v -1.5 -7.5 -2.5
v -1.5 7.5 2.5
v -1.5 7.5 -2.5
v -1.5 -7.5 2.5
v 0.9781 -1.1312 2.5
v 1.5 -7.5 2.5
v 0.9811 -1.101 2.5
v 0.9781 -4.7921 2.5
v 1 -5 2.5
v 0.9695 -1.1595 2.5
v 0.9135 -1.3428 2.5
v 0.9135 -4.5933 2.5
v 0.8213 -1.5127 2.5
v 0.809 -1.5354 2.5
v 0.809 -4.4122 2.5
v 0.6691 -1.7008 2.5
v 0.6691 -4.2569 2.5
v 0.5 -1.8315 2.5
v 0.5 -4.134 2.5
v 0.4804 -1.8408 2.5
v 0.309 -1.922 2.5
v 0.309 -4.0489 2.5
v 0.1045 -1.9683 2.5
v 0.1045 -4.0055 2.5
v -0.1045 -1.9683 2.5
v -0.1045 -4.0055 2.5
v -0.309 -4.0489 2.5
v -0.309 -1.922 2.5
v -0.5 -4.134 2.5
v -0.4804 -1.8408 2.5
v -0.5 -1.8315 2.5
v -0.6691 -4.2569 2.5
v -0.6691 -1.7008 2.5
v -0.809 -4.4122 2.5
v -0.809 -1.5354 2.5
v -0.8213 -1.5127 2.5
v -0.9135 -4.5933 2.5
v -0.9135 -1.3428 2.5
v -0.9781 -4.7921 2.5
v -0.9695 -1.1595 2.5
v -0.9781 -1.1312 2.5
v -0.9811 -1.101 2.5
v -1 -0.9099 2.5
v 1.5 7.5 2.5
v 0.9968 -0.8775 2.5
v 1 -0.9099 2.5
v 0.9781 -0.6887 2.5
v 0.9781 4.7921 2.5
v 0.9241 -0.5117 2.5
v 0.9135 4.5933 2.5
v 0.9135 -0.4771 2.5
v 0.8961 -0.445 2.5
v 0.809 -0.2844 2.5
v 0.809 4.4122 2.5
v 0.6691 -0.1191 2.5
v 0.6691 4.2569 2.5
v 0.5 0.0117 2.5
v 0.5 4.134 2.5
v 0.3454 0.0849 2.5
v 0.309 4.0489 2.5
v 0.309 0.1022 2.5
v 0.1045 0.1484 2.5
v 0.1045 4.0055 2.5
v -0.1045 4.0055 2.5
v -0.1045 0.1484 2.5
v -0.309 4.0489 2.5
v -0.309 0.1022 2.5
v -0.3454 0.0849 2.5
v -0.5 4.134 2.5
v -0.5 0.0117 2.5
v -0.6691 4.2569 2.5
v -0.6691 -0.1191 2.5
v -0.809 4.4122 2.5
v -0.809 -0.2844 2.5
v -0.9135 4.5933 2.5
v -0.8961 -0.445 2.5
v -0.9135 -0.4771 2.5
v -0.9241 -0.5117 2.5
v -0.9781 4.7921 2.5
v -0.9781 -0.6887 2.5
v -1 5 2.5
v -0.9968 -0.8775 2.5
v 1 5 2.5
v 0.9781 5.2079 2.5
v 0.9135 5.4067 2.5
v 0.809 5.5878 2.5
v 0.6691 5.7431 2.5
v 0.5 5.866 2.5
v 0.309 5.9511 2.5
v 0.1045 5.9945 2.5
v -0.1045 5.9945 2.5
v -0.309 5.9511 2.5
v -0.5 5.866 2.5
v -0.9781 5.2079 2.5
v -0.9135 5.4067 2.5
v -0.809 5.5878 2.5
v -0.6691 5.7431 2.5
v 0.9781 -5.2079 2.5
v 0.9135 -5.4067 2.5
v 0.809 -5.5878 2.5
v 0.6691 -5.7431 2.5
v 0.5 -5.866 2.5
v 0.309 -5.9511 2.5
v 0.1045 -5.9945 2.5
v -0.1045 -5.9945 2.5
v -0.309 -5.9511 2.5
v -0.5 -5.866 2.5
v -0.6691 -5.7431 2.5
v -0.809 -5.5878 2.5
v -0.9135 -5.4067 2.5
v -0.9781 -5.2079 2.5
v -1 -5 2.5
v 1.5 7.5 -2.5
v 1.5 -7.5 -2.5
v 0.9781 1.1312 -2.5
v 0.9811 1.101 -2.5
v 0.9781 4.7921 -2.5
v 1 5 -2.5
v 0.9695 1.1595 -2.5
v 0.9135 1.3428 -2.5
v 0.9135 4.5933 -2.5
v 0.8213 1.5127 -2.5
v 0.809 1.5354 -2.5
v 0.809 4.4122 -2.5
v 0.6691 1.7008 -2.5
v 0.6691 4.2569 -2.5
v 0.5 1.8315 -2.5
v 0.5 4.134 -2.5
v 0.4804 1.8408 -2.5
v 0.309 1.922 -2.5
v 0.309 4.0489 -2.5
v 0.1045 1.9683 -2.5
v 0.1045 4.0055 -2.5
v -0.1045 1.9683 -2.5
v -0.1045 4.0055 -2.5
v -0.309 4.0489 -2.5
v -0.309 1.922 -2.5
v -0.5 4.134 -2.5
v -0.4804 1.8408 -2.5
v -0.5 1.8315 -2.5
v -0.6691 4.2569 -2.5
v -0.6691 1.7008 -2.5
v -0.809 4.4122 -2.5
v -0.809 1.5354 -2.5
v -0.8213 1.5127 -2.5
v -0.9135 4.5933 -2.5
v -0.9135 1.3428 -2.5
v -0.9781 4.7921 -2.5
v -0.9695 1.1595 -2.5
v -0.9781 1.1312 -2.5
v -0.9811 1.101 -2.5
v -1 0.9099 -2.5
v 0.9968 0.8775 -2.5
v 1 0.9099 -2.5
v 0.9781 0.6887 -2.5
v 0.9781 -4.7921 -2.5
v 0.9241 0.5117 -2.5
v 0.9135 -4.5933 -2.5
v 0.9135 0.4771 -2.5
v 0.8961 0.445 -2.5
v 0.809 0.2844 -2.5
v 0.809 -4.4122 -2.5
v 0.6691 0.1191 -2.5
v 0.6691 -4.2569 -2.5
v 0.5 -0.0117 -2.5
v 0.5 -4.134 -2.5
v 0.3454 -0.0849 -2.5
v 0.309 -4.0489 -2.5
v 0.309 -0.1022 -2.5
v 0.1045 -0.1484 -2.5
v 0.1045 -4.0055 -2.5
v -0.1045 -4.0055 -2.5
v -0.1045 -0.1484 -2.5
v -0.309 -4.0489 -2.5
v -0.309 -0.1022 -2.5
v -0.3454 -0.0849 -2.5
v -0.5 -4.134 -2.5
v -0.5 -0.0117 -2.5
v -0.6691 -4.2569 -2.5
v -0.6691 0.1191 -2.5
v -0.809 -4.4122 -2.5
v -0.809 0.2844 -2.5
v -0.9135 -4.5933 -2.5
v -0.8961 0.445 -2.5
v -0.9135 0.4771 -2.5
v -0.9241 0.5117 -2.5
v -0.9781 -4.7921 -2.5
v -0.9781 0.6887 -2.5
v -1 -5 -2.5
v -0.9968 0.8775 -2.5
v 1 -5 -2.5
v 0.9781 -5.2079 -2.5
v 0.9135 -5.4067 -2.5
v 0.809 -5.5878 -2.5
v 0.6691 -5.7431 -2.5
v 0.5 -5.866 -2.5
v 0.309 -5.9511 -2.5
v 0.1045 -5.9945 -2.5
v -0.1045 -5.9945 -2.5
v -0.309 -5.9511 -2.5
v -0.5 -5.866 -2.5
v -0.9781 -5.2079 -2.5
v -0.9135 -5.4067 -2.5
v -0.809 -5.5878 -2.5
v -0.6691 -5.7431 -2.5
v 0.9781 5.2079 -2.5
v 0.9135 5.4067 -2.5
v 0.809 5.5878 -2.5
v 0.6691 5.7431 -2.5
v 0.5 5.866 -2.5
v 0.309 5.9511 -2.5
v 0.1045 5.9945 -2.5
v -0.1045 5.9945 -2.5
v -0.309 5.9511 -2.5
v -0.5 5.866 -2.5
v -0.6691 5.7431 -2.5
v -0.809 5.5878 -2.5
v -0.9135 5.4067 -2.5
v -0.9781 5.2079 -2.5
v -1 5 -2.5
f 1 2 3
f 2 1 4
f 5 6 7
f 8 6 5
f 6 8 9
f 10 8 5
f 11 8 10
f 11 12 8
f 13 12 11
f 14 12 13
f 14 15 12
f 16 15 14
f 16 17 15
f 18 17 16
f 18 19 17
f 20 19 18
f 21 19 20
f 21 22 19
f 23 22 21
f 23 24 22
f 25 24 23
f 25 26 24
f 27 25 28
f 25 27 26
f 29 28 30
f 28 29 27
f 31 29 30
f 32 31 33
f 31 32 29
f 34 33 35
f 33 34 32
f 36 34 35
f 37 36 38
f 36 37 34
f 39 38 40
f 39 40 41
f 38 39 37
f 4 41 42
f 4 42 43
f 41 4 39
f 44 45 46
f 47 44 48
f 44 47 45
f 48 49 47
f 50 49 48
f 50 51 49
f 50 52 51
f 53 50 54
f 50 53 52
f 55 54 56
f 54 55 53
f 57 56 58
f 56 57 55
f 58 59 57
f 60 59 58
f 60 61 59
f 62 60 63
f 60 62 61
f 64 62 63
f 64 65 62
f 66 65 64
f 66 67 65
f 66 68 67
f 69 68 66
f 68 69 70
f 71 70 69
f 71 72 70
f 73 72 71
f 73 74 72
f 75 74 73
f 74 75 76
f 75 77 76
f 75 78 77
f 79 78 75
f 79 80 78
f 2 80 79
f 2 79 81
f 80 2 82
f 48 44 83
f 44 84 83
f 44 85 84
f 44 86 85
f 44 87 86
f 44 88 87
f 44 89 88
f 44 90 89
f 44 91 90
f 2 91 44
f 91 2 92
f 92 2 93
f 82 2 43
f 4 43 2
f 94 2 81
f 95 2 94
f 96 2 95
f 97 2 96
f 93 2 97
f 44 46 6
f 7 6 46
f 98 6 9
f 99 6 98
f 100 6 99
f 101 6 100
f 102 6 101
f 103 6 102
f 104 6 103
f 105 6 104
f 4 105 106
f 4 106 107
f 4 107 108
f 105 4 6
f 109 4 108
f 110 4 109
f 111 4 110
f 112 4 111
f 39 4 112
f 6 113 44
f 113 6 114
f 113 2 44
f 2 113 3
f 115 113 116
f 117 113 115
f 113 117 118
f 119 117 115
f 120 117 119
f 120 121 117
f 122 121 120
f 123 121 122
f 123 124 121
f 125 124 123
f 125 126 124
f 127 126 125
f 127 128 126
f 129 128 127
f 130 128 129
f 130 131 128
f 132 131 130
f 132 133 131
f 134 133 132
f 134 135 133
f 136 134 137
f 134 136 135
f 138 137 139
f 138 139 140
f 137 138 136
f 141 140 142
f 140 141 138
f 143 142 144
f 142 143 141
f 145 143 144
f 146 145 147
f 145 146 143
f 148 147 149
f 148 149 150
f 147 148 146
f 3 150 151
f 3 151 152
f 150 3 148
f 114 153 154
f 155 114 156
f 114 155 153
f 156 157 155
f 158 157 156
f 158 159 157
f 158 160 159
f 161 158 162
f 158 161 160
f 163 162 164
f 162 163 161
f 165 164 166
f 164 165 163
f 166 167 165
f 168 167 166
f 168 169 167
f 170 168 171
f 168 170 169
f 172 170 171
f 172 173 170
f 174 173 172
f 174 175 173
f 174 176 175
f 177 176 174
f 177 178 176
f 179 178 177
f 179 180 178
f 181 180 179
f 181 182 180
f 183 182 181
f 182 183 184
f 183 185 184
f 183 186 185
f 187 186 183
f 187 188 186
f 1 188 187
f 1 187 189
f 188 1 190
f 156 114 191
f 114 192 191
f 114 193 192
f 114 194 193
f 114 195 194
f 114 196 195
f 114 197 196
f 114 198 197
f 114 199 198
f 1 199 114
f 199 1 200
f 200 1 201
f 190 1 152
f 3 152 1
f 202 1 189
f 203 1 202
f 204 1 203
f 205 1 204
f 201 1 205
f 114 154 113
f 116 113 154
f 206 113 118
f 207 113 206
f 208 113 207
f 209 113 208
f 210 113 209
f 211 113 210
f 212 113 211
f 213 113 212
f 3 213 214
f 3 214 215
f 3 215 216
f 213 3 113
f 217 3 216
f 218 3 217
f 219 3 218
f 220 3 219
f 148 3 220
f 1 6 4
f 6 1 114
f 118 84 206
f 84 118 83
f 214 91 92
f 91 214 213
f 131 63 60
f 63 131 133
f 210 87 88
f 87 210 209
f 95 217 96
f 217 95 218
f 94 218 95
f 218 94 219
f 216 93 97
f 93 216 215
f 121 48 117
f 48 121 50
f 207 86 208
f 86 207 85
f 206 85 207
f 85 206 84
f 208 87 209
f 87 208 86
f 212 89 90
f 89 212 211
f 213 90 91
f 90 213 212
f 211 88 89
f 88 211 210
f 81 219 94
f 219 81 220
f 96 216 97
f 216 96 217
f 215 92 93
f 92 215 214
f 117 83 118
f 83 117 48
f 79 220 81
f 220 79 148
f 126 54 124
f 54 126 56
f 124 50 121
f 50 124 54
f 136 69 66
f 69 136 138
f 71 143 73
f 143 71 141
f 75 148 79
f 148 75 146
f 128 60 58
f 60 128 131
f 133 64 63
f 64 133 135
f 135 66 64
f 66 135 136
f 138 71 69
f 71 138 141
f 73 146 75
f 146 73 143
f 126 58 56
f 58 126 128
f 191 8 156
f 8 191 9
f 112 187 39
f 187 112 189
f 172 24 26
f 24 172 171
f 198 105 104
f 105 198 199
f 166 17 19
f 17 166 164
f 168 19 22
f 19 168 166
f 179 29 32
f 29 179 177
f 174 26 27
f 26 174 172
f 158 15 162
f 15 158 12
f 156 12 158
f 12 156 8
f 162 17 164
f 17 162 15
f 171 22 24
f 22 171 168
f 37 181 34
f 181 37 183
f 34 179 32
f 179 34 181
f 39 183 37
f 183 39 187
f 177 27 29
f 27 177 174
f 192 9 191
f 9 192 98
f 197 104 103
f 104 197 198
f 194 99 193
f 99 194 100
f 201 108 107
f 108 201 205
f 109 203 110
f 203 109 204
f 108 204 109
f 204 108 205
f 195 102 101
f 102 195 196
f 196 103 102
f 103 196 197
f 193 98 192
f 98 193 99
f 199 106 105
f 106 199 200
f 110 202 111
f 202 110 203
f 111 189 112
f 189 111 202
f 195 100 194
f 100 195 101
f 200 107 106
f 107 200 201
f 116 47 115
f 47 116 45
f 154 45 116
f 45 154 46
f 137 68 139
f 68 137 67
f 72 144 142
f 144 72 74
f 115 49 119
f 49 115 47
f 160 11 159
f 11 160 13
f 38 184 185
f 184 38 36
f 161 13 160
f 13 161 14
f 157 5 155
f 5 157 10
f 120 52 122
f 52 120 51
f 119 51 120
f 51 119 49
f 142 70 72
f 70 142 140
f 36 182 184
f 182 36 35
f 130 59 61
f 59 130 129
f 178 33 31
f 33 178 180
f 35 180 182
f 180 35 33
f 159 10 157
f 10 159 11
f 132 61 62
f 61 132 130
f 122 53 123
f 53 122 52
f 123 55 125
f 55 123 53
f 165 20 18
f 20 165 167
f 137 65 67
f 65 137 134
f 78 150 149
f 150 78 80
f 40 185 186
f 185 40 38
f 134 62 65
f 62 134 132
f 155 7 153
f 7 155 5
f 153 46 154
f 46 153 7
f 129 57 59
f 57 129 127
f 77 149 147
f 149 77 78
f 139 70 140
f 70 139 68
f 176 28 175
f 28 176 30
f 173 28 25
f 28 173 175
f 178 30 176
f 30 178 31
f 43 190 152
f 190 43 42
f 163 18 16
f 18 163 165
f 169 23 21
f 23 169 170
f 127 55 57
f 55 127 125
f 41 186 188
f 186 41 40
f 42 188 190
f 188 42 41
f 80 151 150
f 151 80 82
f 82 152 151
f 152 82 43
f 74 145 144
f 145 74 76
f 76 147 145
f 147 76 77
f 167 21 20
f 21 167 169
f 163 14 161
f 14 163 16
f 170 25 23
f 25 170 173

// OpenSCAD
$fs = 0.01;

laser_radius=1; // the radius of the cylindrical laser module

laser_length=laser_radius*5; // the length of the cylindrical laser module

laser_offset=laser_radius*10; // the horizontal offset between the laser modules (i.e. the reference distance between laser pointer dots

depth_laser_angle=20; // the angle of rotation of the 'depth' reference laser module

block_width=laser_radius*3; 
block_height=laser_length;
block_length=laser_offset*1.5;

difference() {
    
    // the main shape
	cube (size = [block_width,block_length,block_height], center=true);
    
   translate([0,laser_offset/2,0])
   cylinder(h=block_height*1.5, r1=laser_radius, r2=laser_radius, center=true);
    
    
    translate([0,-laser_offset/2,0])
    cylinder(h=block_height*1.5, r1=laser_radius, r2=laser_radius, center=true);
    
     rotate([depth_laser_angle,0,0])
    cylinder(h=block_height*1.5, r1=laser_radius, r2=laser_radius, center=true);
    
}
